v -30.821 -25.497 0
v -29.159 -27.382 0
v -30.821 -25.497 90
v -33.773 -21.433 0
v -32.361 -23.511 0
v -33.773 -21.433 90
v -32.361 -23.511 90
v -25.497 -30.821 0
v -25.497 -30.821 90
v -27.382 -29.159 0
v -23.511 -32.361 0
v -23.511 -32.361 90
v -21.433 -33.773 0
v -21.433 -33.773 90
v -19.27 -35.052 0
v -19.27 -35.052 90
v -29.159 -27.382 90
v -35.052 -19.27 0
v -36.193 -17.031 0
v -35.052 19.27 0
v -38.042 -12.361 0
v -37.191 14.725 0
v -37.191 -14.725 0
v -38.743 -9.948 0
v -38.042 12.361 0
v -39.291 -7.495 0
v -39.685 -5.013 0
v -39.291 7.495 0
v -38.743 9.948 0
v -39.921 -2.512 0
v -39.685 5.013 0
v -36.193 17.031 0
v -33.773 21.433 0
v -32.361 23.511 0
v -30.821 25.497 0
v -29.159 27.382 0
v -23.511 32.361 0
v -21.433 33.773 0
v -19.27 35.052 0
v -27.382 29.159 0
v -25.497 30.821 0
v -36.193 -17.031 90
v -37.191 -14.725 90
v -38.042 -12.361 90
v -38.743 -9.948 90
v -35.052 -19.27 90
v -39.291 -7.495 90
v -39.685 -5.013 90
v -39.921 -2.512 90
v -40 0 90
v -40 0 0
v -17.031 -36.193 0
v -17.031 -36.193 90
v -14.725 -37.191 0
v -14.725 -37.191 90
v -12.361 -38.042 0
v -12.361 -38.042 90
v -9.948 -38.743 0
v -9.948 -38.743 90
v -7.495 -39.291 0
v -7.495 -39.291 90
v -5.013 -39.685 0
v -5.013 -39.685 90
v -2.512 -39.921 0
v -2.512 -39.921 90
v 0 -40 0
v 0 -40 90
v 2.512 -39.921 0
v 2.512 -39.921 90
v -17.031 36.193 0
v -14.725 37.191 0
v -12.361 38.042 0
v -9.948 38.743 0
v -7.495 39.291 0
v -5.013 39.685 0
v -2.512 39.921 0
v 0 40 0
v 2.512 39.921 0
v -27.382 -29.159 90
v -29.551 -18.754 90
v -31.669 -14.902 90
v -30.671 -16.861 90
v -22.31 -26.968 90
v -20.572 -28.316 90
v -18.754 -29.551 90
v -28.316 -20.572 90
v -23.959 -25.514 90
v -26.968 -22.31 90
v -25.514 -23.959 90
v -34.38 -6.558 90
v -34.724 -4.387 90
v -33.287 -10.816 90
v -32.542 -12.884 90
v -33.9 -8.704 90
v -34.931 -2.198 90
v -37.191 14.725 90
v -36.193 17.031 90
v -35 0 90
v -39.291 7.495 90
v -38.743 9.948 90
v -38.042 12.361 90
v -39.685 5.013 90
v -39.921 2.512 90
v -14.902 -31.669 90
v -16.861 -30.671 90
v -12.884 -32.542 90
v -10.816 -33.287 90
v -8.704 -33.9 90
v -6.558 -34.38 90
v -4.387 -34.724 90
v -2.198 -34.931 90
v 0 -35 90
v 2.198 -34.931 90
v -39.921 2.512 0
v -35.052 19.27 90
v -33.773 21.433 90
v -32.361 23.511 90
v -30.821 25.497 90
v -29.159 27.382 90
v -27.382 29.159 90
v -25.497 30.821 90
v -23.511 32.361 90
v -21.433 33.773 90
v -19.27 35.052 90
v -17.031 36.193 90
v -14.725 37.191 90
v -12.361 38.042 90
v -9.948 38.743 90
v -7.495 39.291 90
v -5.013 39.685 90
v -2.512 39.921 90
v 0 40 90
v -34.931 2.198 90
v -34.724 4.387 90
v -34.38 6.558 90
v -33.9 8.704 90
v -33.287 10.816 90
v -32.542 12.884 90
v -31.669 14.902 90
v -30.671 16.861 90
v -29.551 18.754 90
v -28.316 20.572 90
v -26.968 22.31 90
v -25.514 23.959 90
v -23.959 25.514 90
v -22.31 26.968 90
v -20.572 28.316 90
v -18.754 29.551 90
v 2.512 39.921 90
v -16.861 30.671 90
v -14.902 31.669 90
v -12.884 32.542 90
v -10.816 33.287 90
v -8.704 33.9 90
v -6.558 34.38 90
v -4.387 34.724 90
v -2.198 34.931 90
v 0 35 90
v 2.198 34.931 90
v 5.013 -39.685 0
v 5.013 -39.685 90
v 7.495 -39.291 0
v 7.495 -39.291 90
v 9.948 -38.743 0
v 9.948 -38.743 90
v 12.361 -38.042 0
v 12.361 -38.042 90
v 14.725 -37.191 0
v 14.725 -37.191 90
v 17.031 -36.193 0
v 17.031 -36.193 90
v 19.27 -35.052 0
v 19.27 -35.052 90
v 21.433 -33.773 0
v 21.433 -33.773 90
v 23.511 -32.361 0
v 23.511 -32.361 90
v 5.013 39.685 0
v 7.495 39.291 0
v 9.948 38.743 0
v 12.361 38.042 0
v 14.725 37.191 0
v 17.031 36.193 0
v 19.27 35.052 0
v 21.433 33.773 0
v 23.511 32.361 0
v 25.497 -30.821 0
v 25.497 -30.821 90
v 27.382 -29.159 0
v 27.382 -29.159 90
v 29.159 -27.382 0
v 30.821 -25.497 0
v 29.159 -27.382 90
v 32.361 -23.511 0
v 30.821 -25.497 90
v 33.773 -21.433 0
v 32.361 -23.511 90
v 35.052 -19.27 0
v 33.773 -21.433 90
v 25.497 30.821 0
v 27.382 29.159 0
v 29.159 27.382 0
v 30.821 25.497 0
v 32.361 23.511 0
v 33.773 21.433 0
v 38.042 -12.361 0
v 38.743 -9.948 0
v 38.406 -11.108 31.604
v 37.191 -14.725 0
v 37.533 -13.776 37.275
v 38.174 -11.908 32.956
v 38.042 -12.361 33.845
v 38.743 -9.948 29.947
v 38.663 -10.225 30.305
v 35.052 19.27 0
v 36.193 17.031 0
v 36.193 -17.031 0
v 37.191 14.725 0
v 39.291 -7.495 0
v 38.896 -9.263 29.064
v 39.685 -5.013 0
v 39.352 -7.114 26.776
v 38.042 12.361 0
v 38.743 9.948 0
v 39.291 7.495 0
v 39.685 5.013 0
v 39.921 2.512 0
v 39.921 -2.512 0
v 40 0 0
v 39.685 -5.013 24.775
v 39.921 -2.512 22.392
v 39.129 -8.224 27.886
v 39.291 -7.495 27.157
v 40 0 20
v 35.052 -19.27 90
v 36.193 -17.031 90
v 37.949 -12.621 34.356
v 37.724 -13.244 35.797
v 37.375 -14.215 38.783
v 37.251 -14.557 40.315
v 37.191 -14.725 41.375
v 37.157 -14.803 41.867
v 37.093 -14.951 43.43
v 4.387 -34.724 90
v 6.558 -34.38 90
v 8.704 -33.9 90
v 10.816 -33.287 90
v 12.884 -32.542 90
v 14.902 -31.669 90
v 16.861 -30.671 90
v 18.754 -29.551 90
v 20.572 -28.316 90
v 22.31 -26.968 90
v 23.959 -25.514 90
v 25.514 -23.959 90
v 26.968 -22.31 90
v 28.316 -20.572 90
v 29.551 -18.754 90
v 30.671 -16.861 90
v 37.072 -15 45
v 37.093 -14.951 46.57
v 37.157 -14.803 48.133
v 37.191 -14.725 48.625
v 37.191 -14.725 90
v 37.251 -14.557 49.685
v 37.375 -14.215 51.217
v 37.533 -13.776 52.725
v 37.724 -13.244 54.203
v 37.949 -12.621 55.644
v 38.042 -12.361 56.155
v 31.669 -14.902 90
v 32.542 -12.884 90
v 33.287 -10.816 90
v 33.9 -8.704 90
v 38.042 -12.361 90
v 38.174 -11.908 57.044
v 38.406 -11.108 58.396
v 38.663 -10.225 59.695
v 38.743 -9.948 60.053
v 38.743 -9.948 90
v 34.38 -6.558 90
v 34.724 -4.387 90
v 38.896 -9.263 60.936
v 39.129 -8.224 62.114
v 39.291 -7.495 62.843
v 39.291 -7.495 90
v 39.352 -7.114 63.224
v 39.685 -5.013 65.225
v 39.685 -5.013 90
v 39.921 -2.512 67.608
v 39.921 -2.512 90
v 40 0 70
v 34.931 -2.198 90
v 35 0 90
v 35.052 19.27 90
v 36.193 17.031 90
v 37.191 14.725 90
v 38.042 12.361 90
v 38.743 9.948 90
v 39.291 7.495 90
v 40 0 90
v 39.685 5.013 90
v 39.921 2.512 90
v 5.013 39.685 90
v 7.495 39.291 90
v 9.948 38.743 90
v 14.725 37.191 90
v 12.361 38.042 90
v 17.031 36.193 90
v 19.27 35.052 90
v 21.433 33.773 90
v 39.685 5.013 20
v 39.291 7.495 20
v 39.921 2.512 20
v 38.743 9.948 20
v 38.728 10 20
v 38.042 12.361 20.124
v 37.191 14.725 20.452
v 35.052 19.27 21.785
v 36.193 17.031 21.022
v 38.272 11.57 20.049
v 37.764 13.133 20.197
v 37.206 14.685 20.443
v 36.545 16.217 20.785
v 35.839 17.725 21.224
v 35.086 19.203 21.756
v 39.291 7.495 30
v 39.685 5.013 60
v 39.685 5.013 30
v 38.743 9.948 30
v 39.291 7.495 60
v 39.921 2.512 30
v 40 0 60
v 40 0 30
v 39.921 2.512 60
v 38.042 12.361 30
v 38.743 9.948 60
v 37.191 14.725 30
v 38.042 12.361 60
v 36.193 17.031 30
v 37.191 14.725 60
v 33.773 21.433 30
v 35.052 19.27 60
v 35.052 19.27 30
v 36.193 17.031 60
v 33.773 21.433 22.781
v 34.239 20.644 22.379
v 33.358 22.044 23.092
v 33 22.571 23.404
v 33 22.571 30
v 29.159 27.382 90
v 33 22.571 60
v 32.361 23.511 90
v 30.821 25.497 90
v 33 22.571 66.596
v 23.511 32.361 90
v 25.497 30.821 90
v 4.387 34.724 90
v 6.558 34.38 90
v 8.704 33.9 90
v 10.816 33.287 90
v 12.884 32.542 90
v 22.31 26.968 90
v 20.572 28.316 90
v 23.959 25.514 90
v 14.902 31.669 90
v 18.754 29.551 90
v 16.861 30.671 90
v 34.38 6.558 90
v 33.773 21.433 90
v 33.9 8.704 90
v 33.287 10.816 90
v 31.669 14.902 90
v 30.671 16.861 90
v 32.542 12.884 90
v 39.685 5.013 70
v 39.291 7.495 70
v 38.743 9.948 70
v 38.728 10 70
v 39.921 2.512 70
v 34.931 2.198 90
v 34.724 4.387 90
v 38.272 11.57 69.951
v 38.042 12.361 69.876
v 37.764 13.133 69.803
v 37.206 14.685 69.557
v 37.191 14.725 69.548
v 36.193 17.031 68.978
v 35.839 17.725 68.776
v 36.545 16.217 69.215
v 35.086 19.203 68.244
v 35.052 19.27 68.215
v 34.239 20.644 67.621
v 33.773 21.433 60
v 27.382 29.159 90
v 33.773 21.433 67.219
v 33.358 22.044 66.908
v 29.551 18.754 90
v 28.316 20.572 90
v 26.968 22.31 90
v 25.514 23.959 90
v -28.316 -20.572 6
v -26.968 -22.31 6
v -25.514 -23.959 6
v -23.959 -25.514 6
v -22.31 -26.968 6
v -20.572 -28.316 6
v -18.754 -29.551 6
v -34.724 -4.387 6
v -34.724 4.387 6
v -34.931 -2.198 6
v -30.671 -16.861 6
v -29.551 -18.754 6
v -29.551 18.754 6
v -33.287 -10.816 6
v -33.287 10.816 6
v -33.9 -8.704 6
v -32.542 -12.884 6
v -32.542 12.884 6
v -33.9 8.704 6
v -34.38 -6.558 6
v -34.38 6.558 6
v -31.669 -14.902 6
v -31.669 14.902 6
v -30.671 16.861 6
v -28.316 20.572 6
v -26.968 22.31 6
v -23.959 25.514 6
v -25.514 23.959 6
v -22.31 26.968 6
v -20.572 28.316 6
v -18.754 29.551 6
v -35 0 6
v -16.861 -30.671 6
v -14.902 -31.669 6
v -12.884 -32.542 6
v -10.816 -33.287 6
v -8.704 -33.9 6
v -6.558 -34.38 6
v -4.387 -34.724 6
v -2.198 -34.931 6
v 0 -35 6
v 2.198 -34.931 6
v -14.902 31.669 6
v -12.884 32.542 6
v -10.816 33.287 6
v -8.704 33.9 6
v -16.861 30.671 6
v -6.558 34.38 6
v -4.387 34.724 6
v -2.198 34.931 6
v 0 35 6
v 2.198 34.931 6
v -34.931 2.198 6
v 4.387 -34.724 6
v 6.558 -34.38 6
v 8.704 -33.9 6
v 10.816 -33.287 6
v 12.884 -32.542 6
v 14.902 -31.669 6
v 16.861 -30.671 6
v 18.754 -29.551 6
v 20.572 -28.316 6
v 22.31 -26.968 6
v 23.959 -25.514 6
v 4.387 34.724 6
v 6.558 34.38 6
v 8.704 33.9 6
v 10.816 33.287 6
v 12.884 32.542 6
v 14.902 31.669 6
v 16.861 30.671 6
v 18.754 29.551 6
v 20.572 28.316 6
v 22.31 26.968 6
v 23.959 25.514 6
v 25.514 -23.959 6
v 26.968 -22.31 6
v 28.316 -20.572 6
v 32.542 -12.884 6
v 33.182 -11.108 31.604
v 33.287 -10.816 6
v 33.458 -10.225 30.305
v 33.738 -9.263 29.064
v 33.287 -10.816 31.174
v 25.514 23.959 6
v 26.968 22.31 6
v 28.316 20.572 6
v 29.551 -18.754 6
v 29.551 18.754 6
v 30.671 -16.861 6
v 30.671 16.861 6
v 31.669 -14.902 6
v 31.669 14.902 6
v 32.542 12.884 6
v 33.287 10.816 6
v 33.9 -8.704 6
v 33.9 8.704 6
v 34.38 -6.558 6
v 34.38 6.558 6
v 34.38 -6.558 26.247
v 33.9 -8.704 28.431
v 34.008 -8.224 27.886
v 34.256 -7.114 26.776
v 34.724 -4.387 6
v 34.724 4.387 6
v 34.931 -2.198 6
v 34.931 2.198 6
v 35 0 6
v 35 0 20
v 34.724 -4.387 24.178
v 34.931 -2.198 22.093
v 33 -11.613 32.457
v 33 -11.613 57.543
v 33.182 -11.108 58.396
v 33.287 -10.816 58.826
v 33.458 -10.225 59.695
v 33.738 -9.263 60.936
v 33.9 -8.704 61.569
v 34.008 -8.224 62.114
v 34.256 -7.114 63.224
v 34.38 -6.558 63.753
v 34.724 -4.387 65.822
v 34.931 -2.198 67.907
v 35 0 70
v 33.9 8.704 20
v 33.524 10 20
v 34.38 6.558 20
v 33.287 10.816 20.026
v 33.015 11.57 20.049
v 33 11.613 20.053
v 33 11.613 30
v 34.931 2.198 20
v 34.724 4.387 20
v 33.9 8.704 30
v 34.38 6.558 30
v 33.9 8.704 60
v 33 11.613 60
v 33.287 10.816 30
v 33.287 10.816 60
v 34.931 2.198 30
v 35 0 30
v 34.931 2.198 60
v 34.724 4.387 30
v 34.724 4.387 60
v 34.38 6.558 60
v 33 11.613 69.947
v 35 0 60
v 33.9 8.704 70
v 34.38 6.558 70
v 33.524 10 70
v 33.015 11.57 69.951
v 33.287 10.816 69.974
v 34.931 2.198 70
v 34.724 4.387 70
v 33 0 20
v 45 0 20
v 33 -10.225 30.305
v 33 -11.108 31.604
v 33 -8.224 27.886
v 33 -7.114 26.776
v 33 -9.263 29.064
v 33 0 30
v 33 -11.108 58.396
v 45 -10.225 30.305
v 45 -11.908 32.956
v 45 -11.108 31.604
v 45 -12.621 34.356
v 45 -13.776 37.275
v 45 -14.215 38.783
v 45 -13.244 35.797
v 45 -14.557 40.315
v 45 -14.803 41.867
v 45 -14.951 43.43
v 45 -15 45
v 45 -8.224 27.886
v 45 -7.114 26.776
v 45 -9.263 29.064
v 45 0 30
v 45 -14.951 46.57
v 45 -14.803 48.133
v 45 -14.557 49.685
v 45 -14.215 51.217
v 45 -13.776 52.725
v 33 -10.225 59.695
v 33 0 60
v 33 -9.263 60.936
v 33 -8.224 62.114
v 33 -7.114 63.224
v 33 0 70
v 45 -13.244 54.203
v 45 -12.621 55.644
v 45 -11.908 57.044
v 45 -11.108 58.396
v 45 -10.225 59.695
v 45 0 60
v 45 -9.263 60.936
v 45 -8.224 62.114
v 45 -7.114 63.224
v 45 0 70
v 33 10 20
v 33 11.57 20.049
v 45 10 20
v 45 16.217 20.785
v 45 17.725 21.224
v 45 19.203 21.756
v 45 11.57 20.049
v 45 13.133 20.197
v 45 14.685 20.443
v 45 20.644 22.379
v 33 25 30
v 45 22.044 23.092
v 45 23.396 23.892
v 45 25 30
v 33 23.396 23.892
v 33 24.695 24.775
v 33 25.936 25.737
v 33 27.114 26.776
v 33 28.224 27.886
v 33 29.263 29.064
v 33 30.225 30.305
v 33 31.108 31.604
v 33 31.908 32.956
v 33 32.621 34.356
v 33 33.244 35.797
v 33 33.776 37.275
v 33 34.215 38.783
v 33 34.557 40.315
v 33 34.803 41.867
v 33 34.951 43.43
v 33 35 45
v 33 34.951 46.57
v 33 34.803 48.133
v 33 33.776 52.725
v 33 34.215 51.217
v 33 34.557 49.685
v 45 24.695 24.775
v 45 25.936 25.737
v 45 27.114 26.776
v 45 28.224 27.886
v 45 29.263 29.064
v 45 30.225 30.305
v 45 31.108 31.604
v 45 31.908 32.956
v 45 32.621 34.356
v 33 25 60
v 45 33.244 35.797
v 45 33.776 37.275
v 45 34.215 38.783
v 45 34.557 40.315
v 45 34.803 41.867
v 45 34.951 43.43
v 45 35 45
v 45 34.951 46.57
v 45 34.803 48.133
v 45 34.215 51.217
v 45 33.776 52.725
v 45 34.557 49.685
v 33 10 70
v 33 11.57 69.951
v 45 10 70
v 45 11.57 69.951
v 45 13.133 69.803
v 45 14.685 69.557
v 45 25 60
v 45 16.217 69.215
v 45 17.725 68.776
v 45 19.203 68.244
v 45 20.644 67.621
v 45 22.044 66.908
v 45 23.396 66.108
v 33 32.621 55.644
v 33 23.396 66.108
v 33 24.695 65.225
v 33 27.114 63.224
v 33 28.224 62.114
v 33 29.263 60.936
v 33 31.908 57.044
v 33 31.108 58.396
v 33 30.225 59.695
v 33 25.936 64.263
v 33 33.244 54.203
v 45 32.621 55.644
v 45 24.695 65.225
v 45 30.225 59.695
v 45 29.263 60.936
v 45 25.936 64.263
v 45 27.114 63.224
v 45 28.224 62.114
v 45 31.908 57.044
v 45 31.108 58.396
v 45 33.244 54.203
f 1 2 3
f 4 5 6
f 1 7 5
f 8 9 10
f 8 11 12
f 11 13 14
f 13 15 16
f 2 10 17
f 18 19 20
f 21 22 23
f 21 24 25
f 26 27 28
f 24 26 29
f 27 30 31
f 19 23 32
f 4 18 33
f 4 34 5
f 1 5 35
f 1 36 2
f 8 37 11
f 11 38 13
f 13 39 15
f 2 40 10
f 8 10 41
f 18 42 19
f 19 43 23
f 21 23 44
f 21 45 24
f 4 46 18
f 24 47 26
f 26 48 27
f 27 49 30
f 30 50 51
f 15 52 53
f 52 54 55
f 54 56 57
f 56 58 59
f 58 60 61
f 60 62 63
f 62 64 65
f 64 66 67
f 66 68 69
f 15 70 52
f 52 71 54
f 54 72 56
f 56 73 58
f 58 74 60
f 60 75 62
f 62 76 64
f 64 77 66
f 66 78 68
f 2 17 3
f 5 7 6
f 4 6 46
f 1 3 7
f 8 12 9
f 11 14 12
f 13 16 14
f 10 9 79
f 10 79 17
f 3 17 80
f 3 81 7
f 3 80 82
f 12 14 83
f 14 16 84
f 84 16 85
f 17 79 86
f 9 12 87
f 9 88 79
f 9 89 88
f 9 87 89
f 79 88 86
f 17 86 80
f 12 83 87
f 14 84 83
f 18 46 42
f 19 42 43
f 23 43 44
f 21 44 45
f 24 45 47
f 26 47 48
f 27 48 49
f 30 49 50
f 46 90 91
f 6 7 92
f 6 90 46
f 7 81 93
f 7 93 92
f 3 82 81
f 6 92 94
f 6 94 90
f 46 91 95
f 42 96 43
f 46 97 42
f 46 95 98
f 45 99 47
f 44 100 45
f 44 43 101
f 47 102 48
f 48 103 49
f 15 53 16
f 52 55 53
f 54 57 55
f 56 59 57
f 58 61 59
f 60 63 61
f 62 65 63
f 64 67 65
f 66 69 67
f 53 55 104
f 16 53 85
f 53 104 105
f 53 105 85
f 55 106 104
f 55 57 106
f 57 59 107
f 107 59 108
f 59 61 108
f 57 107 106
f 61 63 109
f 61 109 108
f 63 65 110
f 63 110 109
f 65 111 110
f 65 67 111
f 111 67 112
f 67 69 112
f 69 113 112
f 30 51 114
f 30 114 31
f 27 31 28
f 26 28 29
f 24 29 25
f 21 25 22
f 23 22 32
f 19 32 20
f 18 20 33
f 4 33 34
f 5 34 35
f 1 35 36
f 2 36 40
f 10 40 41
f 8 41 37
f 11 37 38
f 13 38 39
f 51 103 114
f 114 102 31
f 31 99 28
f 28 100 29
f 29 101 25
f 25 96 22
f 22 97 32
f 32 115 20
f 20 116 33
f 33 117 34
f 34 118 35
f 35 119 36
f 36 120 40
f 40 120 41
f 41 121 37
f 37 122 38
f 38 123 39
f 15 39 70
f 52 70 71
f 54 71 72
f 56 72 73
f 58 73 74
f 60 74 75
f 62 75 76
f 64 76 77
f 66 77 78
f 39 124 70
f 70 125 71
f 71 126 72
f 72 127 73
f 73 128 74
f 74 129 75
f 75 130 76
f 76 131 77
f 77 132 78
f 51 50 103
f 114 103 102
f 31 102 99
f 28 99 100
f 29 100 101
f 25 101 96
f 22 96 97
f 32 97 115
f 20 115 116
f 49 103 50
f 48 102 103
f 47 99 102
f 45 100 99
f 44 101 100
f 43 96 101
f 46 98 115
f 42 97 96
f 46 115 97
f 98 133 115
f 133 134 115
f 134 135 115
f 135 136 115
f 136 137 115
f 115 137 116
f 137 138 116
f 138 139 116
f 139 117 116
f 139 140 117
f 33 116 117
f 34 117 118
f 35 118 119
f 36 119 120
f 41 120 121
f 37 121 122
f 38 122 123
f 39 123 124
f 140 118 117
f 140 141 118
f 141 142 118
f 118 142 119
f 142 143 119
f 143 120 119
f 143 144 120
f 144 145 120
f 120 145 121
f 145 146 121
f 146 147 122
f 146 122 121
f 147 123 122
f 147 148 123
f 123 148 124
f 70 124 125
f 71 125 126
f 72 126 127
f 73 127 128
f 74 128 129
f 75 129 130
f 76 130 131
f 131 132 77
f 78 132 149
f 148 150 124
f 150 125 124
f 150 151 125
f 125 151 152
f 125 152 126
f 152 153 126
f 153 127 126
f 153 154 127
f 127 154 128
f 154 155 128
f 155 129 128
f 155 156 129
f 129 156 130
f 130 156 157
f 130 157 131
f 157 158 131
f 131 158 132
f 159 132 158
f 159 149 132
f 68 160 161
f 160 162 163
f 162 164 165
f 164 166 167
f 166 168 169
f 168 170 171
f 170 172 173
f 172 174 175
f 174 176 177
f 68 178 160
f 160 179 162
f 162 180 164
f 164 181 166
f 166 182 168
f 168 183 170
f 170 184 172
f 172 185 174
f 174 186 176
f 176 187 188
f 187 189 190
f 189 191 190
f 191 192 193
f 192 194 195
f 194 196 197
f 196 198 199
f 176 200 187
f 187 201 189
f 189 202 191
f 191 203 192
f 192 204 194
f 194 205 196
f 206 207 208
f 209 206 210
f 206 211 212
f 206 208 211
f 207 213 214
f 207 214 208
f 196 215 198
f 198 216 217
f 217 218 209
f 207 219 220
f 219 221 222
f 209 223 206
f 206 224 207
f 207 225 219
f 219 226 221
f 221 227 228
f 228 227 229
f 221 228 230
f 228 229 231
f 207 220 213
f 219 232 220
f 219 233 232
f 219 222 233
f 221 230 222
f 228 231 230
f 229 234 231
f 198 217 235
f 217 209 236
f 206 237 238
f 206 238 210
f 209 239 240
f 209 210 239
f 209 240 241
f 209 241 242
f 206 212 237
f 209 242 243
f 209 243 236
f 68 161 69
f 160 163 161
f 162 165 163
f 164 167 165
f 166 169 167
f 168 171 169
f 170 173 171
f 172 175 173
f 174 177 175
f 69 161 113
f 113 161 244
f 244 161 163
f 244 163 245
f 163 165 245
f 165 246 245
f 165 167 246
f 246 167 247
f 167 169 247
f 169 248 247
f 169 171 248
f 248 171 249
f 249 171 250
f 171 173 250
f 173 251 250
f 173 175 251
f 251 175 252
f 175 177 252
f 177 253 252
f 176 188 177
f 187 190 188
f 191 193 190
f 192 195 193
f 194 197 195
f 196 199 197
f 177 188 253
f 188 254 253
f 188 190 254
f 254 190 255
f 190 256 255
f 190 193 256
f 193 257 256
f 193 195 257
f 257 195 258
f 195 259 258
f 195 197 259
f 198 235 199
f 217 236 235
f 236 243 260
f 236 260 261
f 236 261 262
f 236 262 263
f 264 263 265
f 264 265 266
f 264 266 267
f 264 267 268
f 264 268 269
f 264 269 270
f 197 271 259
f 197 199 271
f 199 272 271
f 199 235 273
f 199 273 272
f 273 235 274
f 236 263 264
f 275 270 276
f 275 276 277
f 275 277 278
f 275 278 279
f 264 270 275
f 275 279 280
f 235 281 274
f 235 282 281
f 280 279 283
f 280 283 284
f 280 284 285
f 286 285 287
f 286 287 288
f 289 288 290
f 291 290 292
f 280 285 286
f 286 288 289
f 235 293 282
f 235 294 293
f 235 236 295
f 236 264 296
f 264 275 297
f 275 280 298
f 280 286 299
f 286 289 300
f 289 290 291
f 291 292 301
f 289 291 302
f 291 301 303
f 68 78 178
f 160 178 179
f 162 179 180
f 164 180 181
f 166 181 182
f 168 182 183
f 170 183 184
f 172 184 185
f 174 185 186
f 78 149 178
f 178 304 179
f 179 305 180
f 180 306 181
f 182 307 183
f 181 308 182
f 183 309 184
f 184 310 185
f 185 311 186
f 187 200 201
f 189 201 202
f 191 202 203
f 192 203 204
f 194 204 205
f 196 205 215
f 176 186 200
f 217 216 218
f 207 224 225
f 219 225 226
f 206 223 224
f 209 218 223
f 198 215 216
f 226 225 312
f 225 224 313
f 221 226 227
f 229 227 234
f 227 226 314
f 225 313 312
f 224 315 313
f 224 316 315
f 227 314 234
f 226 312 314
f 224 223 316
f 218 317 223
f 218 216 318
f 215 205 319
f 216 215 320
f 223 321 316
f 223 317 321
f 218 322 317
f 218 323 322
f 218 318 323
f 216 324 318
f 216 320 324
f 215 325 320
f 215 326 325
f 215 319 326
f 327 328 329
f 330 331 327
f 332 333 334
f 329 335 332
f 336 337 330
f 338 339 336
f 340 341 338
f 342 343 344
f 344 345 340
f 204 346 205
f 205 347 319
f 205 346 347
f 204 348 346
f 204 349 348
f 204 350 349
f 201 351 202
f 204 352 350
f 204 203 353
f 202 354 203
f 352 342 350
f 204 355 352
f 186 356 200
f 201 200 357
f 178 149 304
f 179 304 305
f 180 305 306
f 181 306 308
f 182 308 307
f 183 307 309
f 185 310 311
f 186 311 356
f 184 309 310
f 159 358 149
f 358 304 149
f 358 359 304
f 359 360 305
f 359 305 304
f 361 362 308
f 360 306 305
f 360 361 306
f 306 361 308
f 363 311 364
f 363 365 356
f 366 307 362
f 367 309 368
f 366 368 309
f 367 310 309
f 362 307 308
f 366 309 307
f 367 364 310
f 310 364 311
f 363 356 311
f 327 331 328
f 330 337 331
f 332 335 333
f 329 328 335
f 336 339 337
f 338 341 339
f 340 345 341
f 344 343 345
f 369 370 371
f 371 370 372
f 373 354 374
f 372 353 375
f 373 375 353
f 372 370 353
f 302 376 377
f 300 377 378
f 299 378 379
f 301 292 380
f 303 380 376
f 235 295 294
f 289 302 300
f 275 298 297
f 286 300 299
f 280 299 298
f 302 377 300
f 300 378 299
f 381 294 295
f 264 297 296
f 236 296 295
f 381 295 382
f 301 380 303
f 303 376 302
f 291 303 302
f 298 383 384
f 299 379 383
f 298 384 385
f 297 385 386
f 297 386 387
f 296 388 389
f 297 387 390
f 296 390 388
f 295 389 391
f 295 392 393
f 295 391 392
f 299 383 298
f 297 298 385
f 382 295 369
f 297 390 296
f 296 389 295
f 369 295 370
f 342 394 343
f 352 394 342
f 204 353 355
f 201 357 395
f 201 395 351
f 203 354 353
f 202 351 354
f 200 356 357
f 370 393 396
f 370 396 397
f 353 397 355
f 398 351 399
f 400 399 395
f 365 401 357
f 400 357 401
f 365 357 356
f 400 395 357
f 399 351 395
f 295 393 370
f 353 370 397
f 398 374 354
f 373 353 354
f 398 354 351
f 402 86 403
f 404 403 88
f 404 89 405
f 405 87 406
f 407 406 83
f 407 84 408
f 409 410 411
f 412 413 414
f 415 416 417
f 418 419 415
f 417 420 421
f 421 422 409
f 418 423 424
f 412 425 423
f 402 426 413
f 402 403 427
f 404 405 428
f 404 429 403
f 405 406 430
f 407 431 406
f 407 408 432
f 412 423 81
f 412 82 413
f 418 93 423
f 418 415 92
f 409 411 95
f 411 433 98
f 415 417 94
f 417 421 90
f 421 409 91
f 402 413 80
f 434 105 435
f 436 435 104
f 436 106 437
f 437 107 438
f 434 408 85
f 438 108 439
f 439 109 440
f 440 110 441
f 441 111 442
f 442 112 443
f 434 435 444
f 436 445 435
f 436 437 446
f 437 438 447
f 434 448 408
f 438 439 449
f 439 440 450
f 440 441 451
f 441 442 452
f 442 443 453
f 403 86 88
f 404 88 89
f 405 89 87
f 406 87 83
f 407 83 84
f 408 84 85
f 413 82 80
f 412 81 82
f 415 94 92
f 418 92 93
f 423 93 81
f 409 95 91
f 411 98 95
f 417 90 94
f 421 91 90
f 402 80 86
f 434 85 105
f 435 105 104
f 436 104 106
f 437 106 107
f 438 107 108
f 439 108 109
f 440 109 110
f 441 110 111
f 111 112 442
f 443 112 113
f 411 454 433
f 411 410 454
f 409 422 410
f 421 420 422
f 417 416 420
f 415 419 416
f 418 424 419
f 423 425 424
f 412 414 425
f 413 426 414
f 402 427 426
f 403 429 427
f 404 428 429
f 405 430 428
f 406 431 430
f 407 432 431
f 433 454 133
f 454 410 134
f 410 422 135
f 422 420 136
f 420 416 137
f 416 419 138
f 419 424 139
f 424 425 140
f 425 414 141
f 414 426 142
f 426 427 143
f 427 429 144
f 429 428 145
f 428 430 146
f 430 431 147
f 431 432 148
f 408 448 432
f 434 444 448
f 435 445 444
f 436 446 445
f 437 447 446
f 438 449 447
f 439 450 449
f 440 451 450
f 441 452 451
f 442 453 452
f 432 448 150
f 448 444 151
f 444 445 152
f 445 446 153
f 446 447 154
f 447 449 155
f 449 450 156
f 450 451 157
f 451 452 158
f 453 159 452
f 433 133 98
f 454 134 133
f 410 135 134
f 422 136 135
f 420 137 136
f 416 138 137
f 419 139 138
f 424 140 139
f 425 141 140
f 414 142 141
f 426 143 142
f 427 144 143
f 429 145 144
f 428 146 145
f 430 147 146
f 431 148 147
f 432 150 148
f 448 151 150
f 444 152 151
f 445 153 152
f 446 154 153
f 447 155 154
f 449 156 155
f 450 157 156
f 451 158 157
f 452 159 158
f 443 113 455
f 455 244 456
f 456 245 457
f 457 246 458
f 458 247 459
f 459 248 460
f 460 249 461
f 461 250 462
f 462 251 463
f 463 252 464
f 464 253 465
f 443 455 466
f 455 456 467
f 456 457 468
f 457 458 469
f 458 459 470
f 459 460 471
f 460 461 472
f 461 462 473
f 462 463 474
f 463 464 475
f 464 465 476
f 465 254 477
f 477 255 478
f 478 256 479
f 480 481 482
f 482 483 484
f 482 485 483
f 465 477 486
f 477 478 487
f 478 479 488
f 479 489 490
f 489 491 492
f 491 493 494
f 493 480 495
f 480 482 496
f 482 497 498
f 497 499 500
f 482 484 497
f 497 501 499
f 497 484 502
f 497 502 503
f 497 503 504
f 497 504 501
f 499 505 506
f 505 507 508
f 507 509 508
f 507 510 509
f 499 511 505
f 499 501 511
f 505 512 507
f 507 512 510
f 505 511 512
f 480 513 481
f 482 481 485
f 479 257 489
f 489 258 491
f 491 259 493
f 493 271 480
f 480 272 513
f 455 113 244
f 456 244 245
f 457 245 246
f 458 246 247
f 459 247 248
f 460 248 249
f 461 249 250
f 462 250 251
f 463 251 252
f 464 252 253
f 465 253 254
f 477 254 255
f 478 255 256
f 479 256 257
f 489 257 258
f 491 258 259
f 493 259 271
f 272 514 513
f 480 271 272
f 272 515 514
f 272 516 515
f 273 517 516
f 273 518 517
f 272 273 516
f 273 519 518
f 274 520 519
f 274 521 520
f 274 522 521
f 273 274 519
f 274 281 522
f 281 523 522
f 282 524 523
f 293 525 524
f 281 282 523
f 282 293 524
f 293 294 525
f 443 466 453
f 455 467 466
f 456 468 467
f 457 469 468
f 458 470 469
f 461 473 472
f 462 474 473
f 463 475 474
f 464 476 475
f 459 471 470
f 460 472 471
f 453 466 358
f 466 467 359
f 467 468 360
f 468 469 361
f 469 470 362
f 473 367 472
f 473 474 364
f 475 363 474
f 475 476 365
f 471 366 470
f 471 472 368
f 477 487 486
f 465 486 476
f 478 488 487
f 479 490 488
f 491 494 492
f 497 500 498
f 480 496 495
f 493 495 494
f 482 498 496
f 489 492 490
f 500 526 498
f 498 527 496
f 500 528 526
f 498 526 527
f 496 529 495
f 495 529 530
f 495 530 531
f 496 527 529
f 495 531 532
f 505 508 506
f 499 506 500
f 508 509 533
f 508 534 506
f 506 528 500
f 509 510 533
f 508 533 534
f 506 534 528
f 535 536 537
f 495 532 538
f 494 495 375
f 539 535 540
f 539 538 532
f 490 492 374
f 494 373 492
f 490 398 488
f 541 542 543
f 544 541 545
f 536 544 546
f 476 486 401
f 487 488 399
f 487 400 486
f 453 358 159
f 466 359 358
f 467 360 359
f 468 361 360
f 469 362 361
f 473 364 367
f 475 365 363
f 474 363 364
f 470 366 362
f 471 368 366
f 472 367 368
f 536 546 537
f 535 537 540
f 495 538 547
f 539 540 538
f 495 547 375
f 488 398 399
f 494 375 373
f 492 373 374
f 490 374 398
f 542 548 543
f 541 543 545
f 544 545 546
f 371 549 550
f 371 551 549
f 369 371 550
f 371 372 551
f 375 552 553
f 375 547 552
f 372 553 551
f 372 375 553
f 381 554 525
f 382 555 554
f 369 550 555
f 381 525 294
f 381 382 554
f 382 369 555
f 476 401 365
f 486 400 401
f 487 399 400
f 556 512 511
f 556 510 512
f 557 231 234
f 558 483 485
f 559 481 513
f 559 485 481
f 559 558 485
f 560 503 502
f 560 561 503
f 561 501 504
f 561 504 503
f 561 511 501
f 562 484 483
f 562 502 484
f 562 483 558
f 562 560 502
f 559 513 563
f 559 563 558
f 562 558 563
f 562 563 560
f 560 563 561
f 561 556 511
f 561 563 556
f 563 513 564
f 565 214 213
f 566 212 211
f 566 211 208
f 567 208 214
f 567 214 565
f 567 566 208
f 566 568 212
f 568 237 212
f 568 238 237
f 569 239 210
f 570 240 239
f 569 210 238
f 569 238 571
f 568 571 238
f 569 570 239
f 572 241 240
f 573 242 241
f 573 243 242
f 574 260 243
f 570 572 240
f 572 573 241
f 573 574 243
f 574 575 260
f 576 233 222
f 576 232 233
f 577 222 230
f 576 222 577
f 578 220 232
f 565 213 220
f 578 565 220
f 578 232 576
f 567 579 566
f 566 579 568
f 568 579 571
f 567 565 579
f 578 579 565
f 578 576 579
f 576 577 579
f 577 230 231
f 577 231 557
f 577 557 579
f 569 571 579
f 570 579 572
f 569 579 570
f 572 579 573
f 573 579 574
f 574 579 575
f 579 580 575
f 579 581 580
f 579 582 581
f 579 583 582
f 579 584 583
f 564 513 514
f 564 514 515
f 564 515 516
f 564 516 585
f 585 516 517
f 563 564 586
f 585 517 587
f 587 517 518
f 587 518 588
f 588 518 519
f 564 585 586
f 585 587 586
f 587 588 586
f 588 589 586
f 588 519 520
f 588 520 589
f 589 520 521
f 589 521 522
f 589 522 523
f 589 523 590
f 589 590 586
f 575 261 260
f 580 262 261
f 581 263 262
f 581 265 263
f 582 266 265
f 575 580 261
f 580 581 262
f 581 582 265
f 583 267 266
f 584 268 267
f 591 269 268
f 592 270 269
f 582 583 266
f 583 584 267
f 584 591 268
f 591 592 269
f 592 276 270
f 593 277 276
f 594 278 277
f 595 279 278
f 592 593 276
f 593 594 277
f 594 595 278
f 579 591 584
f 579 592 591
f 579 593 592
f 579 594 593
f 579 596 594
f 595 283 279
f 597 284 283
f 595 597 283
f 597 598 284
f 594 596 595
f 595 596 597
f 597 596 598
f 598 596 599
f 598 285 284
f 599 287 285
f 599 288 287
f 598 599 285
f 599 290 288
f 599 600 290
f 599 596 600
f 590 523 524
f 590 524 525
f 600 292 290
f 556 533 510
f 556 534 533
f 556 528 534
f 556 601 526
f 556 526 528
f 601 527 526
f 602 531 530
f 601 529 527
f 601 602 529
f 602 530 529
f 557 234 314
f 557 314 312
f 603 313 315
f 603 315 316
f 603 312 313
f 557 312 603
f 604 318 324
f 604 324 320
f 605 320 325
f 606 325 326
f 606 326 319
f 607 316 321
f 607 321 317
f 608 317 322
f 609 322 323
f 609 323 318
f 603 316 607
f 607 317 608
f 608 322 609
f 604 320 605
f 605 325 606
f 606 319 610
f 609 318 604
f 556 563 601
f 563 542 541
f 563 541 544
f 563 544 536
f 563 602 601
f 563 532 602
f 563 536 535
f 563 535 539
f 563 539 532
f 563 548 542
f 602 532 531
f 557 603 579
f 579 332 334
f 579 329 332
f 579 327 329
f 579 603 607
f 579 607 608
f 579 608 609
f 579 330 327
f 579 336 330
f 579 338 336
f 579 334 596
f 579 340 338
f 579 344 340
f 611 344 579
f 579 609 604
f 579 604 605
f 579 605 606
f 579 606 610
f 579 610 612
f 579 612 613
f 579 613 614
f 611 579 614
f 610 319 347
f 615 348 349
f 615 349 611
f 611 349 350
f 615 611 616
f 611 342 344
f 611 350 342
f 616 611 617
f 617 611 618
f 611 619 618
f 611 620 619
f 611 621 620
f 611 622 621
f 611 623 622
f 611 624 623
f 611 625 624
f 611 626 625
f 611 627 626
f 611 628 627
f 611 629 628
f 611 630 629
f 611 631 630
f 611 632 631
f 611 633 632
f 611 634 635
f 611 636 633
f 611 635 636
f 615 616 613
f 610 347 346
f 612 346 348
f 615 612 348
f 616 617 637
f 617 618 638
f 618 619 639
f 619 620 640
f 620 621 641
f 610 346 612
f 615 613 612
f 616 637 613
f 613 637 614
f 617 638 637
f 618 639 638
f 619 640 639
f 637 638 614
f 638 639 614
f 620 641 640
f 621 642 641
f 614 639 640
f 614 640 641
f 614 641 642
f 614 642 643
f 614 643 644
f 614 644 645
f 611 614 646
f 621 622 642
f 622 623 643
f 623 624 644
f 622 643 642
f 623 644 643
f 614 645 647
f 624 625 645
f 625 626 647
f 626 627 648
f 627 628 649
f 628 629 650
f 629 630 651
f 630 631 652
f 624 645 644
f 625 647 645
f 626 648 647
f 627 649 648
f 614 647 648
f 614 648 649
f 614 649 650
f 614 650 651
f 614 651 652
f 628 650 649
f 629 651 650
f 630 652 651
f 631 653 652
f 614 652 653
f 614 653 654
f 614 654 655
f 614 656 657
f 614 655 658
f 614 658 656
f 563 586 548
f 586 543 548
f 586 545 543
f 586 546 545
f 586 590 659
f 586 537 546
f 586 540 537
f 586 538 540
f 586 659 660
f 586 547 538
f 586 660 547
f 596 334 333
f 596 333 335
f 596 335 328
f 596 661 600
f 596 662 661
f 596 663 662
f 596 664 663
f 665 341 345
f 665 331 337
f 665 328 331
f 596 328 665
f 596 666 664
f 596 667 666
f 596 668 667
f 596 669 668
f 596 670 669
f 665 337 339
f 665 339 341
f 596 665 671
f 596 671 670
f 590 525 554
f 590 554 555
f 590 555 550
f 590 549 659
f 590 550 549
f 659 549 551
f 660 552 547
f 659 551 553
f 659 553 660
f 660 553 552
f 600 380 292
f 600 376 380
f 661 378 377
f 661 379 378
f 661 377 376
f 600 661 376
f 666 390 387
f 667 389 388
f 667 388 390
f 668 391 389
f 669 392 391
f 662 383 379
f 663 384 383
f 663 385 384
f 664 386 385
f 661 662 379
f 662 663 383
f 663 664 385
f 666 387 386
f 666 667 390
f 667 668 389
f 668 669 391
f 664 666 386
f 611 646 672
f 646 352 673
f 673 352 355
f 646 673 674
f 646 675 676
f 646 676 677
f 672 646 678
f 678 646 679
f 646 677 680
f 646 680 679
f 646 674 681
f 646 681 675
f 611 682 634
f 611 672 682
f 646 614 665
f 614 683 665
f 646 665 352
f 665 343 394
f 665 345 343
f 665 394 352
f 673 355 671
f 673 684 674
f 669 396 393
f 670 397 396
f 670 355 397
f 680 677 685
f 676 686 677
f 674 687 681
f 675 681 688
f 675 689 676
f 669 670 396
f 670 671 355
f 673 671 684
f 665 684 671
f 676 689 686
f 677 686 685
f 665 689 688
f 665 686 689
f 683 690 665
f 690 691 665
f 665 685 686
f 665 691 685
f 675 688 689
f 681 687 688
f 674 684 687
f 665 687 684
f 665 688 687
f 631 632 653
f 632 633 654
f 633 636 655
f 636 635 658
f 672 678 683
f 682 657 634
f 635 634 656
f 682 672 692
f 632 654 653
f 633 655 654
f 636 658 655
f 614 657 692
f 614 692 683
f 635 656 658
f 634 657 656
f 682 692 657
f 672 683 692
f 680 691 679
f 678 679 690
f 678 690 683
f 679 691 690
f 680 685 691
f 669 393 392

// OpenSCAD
$fn = 100;

// マグカップ全体
union() {
    // --- 1. 本体 (Body) ---
    difference() {
        // 外径 80mm (半径 40mm), 高さ 90mm
        cylinder(h=90, r=40);
        
        // 内側の中空化 (内径 70mm/半径 35mm, 底面の厚み 6mm)
        // 確実に上部を突き抜けるよう、高さは本体より少し高く設定
        translate([0, 0, 6])
            cylinder(h=85, r=35);
    }

    // --- 2. 取手 (Handle) ---
    // 本体外周(X=40)から+X方向に配置、高さ方向の中央(Z=45)に配置
    translate([39, 0, 45]) // 1mm本体にめり込ませて確実に結合(union)させる
    rotate([90, 0, 90])    // 2D図面を立ててX軸方向に向ける
    linear_extrude(height=12, center=true) // 取手自体の厚み(幅)は12mm
    difference() {
        // 取手の外形: D字形状 (外側が半径25mmの半円、本体側が直線)
        hull() {
            translate([0, -25]) square([1, 50]); // 本体側の平らな面
            translate([10, 0]) circle(r=25);     // 外側の膨らみ
        }
        
        // 取手の内側の空間: 指定された 30mm(高さ) × 25mm(幅)
        // 位置を調整して指が入るスペースを確保
        translate([0, -15]) square([25, 30]);
    }
}
